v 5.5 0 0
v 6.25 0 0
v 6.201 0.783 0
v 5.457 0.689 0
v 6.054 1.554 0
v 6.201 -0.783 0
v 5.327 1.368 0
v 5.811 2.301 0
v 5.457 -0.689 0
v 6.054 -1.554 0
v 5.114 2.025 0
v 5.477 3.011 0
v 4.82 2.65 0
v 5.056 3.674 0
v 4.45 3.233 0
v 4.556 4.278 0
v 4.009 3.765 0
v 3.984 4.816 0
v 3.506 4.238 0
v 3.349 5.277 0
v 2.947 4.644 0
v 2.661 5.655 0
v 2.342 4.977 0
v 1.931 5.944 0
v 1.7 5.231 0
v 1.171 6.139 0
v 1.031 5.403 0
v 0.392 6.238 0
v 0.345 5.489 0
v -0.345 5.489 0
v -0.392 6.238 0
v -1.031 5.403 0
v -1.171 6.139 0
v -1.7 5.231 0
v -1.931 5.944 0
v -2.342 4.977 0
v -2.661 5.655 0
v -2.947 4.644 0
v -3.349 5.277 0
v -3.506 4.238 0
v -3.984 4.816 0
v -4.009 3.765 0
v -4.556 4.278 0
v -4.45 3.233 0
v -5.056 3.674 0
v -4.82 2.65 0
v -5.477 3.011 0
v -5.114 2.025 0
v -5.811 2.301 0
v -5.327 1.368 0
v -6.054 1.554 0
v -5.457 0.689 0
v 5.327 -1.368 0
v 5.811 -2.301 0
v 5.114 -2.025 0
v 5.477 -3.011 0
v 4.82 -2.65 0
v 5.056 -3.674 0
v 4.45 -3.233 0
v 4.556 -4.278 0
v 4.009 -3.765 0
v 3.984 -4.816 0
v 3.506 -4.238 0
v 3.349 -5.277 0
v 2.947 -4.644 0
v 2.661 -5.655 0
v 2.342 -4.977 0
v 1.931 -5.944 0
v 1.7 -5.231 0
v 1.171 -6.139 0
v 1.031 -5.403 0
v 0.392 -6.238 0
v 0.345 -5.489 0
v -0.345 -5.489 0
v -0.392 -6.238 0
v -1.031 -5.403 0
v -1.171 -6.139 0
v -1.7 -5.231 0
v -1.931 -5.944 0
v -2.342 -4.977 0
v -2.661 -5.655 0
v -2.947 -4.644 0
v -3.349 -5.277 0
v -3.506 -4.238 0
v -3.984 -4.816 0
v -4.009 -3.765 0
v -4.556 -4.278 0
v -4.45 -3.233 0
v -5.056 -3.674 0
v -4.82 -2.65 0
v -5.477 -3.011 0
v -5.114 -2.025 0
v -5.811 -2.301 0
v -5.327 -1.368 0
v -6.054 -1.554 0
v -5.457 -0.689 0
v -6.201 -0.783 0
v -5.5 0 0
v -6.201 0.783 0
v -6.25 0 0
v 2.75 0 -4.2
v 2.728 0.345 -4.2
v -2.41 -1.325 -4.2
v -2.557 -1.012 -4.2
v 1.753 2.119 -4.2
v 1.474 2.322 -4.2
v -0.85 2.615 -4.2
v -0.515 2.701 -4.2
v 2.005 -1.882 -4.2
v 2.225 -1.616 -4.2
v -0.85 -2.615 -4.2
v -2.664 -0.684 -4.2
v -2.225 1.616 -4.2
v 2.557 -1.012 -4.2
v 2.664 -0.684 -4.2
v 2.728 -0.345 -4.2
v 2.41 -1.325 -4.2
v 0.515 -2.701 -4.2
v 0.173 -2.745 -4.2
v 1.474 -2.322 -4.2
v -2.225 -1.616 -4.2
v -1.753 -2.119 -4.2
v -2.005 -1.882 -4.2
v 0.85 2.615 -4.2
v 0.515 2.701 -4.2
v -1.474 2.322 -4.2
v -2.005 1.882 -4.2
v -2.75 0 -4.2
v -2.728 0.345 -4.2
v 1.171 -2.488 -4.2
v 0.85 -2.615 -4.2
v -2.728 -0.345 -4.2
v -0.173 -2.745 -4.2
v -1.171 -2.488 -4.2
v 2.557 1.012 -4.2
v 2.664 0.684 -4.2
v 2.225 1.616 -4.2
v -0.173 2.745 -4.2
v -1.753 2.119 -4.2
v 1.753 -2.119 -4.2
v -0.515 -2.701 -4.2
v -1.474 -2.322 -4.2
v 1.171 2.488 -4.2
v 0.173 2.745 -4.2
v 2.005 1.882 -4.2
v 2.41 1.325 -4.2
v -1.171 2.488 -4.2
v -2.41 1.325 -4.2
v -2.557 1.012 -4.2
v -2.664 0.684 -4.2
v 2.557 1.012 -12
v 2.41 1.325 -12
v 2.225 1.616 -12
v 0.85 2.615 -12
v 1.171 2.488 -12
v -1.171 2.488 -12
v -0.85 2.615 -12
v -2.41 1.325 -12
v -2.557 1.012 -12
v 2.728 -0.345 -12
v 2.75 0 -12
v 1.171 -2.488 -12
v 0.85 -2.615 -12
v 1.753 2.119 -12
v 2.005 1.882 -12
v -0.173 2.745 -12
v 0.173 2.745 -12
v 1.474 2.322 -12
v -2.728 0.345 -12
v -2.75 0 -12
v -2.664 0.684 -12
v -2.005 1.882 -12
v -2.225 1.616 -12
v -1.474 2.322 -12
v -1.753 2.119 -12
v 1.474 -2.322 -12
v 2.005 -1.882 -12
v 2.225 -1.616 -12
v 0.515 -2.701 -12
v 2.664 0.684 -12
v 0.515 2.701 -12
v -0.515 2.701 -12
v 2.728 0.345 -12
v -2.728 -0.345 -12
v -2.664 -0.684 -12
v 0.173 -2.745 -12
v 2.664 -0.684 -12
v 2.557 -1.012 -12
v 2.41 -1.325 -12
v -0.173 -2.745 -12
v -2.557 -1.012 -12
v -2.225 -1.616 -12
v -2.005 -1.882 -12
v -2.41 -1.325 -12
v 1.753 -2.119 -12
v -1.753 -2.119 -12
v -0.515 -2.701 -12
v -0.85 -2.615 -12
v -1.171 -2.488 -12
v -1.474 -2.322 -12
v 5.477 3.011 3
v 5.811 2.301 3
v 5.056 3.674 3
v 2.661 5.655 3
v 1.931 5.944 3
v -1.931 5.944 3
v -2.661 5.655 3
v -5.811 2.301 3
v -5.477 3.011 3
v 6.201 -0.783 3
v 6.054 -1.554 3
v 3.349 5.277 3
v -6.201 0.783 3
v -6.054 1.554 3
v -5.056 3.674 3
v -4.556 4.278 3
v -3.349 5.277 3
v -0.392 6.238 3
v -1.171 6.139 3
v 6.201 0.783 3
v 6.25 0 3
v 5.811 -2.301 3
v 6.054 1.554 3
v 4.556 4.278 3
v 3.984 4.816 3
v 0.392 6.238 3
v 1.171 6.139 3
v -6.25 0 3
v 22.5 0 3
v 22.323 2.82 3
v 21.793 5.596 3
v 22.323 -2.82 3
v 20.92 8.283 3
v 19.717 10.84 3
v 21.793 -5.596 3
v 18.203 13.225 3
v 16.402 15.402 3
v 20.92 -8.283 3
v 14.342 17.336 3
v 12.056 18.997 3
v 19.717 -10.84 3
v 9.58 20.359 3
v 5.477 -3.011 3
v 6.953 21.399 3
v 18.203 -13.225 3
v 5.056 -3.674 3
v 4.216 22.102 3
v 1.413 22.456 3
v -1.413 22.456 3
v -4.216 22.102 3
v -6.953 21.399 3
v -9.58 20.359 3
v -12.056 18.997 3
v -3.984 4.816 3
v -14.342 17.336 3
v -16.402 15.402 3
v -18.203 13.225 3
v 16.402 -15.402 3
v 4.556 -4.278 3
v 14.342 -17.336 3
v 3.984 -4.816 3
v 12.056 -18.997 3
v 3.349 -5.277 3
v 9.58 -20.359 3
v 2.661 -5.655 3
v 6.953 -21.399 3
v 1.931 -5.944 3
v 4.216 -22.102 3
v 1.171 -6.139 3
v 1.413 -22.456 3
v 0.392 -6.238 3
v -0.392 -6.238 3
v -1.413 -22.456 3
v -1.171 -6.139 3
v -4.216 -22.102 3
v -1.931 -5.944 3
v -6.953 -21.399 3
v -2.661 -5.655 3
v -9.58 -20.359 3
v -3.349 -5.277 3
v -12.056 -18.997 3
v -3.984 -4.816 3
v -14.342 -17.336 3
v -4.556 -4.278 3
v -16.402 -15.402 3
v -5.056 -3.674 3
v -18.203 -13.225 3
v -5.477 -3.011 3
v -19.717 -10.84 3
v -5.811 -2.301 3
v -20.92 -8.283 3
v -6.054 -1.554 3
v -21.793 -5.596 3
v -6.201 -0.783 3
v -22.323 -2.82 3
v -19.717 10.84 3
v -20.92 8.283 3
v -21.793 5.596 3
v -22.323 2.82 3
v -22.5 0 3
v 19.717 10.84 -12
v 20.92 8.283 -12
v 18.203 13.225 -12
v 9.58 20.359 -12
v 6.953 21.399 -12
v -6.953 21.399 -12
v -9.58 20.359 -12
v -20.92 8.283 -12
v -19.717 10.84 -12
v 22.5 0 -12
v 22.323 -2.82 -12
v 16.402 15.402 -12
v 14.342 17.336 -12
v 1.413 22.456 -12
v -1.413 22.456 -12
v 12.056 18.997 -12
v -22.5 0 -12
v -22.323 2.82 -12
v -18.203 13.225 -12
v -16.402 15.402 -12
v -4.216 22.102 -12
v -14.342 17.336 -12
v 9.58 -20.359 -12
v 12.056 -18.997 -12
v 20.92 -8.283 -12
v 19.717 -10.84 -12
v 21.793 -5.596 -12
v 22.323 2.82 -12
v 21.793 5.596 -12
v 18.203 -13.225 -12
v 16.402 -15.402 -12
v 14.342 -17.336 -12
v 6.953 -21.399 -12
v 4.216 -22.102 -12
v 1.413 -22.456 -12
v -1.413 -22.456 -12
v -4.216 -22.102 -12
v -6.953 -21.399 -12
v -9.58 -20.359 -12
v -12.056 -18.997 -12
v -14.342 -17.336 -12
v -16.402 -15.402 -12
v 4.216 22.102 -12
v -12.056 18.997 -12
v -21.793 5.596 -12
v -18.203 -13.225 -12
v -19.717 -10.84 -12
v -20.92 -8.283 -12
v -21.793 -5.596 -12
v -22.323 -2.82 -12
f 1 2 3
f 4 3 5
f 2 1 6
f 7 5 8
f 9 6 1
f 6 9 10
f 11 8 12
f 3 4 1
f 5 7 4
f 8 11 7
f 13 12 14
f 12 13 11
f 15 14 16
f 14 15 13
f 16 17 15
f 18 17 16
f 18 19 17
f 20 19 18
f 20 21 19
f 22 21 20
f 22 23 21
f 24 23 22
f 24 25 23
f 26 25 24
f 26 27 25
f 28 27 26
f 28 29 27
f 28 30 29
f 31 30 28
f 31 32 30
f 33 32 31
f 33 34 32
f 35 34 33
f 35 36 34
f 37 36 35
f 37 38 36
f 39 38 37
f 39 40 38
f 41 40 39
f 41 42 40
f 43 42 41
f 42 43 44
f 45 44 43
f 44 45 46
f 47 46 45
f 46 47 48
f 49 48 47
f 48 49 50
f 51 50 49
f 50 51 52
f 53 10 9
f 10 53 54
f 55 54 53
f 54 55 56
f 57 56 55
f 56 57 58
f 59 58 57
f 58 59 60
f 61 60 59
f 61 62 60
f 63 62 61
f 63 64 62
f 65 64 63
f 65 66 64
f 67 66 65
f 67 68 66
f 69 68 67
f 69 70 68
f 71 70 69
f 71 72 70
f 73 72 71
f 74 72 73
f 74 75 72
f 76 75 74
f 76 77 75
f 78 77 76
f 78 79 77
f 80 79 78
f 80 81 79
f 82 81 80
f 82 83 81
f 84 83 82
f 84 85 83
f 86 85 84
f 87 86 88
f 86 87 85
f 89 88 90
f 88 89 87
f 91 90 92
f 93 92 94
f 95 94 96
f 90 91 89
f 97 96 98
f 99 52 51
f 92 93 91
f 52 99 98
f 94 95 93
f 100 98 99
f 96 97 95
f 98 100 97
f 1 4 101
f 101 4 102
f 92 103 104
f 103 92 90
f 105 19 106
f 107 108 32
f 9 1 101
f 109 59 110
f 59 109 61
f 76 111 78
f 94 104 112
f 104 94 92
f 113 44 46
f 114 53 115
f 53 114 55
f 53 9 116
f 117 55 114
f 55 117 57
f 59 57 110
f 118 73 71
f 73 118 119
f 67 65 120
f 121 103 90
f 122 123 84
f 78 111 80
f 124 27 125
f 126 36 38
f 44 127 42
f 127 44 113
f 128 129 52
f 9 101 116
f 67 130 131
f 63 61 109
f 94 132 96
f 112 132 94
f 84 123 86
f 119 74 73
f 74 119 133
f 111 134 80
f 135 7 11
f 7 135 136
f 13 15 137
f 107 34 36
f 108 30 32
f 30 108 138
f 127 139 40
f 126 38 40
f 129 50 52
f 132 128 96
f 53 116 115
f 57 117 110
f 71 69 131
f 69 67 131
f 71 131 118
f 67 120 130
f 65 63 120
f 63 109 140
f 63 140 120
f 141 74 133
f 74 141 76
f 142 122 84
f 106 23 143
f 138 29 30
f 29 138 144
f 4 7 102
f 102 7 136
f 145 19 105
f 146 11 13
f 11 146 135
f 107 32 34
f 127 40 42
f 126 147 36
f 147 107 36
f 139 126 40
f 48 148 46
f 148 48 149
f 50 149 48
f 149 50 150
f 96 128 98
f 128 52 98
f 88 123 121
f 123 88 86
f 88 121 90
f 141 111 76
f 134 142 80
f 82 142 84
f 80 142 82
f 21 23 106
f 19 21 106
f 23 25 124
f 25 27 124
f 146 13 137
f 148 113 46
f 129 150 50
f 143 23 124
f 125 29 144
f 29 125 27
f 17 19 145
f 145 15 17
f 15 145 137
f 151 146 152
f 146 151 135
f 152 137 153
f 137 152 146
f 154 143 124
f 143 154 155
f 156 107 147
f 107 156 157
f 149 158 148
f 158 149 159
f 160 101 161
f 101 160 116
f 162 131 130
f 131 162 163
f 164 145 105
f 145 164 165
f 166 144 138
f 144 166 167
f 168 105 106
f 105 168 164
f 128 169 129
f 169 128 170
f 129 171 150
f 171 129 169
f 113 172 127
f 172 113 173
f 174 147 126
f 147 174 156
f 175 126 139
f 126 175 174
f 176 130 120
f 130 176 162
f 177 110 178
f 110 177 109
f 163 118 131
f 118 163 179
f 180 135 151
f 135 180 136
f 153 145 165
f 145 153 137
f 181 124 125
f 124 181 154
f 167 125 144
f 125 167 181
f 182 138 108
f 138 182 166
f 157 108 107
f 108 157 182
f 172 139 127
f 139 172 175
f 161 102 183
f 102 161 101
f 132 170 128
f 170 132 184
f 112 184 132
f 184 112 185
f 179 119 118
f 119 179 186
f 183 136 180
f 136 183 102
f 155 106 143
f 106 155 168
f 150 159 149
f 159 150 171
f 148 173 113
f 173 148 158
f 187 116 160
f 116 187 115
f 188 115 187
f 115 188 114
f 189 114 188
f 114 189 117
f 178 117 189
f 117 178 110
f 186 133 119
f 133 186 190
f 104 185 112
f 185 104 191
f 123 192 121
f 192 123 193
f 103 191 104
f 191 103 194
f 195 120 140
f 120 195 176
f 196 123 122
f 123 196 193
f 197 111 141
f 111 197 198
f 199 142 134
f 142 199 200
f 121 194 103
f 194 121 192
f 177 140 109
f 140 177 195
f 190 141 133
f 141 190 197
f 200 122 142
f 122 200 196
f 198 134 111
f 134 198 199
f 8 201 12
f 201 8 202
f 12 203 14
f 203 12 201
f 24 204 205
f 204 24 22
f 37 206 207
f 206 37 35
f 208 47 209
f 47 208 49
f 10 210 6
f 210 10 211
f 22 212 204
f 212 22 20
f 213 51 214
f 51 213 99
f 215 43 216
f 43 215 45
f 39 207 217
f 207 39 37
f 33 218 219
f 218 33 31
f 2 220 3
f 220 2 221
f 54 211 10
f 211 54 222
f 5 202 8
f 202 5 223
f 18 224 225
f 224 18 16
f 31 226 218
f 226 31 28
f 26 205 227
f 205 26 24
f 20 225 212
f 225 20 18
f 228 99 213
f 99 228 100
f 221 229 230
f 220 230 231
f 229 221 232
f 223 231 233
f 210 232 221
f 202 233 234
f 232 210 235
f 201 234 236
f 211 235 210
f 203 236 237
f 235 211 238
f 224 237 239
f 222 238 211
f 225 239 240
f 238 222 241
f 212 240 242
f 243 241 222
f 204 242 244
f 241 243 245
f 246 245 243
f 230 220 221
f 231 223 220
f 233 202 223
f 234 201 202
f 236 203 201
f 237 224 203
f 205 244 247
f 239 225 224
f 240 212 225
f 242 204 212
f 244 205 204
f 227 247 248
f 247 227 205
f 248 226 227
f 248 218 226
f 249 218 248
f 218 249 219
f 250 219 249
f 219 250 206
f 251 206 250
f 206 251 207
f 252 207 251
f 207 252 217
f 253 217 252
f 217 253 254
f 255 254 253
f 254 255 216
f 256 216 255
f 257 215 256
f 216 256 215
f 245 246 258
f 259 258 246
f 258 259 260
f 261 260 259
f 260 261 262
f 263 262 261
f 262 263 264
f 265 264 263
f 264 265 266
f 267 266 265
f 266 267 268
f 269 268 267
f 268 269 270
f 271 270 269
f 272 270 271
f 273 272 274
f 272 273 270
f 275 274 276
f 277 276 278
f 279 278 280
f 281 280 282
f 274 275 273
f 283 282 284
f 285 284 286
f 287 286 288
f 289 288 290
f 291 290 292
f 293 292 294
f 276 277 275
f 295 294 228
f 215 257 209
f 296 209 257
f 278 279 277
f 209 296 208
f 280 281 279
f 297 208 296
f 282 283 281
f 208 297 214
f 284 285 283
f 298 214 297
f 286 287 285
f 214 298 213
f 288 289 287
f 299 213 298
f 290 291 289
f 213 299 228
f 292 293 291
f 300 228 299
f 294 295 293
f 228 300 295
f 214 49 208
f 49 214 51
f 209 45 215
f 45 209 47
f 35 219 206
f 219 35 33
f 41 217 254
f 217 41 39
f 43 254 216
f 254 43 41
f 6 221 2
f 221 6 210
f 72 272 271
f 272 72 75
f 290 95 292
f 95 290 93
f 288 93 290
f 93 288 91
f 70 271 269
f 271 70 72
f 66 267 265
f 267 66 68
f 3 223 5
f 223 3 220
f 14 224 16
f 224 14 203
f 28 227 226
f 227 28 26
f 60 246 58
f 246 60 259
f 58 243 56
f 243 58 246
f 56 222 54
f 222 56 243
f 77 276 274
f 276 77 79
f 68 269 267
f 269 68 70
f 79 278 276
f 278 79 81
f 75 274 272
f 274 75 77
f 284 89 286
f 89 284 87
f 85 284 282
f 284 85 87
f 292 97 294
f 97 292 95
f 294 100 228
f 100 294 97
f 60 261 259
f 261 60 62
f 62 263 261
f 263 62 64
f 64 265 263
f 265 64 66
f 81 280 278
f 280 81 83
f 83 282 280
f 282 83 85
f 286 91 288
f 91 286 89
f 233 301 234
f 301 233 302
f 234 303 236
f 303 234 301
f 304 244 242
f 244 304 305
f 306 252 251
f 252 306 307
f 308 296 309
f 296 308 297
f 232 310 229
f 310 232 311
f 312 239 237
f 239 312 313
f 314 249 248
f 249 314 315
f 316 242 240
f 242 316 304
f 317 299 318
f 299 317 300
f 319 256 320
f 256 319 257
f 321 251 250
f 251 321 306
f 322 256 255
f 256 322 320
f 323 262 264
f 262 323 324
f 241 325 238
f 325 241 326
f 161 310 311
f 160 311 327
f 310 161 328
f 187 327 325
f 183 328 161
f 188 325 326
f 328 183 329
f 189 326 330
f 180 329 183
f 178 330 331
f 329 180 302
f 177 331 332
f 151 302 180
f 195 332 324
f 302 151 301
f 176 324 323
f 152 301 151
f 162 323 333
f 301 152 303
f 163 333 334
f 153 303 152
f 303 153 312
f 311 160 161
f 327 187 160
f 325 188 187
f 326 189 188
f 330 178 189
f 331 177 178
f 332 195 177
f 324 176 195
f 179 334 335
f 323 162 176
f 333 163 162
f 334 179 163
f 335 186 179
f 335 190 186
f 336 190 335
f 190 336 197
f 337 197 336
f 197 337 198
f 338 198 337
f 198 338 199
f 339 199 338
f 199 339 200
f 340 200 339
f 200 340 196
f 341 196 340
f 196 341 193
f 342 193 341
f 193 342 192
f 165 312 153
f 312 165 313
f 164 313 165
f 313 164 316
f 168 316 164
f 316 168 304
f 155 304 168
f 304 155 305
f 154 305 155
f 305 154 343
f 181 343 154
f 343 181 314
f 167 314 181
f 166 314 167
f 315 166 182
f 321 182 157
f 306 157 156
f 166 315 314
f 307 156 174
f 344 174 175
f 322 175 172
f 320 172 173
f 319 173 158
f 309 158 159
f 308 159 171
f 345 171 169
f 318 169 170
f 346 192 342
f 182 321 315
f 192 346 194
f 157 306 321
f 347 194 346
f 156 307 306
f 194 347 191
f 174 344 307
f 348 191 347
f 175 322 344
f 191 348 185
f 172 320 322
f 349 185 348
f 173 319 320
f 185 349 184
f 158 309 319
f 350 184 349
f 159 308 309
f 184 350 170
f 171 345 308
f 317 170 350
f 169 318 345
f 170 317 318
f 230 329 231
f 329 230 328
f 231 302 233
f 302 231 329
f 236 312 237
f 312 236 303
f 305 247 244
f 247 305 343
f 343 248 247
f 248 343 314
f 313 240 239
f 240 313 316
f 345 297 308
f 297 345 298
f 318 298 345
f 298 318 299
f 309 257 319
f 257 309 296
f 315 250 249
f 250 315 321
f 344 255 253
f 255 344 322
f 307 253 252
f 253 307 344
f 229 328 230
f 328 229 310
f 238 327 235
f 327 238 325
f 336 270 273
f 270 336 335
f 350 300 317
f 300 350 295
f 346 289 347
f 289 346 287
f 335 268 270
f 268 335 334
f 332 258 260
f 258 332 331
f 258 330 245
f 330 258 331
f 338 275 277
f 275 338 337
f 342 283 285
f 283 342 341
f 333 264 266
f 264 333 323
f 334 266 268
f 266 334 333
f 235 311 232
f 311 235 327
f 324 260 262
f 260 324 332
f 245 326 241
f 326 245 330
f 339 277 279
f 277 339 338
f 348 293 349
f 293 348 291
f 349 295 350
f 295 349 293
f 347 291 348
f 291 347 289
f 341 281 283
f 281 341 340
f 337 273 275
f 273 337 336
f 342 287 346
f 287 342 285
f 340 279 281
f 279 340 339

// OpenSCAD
$fn = 50;

difference() {
	union() {
		translate(v = [0, 0, -12.0]) {
			cylinder(h = 15, r = 22.5);
		}
	}
	union() {
		translate(v = [0, 0, 0]) {
			rotate(a = [0, 0, 0]) {
				difference() {
					union() {
						translate(v = [0, 0, -15.0]) {
							cylinder(h = 15, r = 2.25);
						}
						translate(v = [0, 0, -4.2]) {
							cylinder(h = 4.2, r1 = 2.75, r2 = 5.5);
						}
						translate(v = [0, 0, -15.0]) {
							cylinder(h = 15, r = 2.75);
						}
						translate(v = [0, 0, -15.0]) {
							cylinder(h = 15, r = 2.25);
						}
					}
					union();
				}
			}
		}
		#cylinder(h = 3, r = 6.25);
	}
}
